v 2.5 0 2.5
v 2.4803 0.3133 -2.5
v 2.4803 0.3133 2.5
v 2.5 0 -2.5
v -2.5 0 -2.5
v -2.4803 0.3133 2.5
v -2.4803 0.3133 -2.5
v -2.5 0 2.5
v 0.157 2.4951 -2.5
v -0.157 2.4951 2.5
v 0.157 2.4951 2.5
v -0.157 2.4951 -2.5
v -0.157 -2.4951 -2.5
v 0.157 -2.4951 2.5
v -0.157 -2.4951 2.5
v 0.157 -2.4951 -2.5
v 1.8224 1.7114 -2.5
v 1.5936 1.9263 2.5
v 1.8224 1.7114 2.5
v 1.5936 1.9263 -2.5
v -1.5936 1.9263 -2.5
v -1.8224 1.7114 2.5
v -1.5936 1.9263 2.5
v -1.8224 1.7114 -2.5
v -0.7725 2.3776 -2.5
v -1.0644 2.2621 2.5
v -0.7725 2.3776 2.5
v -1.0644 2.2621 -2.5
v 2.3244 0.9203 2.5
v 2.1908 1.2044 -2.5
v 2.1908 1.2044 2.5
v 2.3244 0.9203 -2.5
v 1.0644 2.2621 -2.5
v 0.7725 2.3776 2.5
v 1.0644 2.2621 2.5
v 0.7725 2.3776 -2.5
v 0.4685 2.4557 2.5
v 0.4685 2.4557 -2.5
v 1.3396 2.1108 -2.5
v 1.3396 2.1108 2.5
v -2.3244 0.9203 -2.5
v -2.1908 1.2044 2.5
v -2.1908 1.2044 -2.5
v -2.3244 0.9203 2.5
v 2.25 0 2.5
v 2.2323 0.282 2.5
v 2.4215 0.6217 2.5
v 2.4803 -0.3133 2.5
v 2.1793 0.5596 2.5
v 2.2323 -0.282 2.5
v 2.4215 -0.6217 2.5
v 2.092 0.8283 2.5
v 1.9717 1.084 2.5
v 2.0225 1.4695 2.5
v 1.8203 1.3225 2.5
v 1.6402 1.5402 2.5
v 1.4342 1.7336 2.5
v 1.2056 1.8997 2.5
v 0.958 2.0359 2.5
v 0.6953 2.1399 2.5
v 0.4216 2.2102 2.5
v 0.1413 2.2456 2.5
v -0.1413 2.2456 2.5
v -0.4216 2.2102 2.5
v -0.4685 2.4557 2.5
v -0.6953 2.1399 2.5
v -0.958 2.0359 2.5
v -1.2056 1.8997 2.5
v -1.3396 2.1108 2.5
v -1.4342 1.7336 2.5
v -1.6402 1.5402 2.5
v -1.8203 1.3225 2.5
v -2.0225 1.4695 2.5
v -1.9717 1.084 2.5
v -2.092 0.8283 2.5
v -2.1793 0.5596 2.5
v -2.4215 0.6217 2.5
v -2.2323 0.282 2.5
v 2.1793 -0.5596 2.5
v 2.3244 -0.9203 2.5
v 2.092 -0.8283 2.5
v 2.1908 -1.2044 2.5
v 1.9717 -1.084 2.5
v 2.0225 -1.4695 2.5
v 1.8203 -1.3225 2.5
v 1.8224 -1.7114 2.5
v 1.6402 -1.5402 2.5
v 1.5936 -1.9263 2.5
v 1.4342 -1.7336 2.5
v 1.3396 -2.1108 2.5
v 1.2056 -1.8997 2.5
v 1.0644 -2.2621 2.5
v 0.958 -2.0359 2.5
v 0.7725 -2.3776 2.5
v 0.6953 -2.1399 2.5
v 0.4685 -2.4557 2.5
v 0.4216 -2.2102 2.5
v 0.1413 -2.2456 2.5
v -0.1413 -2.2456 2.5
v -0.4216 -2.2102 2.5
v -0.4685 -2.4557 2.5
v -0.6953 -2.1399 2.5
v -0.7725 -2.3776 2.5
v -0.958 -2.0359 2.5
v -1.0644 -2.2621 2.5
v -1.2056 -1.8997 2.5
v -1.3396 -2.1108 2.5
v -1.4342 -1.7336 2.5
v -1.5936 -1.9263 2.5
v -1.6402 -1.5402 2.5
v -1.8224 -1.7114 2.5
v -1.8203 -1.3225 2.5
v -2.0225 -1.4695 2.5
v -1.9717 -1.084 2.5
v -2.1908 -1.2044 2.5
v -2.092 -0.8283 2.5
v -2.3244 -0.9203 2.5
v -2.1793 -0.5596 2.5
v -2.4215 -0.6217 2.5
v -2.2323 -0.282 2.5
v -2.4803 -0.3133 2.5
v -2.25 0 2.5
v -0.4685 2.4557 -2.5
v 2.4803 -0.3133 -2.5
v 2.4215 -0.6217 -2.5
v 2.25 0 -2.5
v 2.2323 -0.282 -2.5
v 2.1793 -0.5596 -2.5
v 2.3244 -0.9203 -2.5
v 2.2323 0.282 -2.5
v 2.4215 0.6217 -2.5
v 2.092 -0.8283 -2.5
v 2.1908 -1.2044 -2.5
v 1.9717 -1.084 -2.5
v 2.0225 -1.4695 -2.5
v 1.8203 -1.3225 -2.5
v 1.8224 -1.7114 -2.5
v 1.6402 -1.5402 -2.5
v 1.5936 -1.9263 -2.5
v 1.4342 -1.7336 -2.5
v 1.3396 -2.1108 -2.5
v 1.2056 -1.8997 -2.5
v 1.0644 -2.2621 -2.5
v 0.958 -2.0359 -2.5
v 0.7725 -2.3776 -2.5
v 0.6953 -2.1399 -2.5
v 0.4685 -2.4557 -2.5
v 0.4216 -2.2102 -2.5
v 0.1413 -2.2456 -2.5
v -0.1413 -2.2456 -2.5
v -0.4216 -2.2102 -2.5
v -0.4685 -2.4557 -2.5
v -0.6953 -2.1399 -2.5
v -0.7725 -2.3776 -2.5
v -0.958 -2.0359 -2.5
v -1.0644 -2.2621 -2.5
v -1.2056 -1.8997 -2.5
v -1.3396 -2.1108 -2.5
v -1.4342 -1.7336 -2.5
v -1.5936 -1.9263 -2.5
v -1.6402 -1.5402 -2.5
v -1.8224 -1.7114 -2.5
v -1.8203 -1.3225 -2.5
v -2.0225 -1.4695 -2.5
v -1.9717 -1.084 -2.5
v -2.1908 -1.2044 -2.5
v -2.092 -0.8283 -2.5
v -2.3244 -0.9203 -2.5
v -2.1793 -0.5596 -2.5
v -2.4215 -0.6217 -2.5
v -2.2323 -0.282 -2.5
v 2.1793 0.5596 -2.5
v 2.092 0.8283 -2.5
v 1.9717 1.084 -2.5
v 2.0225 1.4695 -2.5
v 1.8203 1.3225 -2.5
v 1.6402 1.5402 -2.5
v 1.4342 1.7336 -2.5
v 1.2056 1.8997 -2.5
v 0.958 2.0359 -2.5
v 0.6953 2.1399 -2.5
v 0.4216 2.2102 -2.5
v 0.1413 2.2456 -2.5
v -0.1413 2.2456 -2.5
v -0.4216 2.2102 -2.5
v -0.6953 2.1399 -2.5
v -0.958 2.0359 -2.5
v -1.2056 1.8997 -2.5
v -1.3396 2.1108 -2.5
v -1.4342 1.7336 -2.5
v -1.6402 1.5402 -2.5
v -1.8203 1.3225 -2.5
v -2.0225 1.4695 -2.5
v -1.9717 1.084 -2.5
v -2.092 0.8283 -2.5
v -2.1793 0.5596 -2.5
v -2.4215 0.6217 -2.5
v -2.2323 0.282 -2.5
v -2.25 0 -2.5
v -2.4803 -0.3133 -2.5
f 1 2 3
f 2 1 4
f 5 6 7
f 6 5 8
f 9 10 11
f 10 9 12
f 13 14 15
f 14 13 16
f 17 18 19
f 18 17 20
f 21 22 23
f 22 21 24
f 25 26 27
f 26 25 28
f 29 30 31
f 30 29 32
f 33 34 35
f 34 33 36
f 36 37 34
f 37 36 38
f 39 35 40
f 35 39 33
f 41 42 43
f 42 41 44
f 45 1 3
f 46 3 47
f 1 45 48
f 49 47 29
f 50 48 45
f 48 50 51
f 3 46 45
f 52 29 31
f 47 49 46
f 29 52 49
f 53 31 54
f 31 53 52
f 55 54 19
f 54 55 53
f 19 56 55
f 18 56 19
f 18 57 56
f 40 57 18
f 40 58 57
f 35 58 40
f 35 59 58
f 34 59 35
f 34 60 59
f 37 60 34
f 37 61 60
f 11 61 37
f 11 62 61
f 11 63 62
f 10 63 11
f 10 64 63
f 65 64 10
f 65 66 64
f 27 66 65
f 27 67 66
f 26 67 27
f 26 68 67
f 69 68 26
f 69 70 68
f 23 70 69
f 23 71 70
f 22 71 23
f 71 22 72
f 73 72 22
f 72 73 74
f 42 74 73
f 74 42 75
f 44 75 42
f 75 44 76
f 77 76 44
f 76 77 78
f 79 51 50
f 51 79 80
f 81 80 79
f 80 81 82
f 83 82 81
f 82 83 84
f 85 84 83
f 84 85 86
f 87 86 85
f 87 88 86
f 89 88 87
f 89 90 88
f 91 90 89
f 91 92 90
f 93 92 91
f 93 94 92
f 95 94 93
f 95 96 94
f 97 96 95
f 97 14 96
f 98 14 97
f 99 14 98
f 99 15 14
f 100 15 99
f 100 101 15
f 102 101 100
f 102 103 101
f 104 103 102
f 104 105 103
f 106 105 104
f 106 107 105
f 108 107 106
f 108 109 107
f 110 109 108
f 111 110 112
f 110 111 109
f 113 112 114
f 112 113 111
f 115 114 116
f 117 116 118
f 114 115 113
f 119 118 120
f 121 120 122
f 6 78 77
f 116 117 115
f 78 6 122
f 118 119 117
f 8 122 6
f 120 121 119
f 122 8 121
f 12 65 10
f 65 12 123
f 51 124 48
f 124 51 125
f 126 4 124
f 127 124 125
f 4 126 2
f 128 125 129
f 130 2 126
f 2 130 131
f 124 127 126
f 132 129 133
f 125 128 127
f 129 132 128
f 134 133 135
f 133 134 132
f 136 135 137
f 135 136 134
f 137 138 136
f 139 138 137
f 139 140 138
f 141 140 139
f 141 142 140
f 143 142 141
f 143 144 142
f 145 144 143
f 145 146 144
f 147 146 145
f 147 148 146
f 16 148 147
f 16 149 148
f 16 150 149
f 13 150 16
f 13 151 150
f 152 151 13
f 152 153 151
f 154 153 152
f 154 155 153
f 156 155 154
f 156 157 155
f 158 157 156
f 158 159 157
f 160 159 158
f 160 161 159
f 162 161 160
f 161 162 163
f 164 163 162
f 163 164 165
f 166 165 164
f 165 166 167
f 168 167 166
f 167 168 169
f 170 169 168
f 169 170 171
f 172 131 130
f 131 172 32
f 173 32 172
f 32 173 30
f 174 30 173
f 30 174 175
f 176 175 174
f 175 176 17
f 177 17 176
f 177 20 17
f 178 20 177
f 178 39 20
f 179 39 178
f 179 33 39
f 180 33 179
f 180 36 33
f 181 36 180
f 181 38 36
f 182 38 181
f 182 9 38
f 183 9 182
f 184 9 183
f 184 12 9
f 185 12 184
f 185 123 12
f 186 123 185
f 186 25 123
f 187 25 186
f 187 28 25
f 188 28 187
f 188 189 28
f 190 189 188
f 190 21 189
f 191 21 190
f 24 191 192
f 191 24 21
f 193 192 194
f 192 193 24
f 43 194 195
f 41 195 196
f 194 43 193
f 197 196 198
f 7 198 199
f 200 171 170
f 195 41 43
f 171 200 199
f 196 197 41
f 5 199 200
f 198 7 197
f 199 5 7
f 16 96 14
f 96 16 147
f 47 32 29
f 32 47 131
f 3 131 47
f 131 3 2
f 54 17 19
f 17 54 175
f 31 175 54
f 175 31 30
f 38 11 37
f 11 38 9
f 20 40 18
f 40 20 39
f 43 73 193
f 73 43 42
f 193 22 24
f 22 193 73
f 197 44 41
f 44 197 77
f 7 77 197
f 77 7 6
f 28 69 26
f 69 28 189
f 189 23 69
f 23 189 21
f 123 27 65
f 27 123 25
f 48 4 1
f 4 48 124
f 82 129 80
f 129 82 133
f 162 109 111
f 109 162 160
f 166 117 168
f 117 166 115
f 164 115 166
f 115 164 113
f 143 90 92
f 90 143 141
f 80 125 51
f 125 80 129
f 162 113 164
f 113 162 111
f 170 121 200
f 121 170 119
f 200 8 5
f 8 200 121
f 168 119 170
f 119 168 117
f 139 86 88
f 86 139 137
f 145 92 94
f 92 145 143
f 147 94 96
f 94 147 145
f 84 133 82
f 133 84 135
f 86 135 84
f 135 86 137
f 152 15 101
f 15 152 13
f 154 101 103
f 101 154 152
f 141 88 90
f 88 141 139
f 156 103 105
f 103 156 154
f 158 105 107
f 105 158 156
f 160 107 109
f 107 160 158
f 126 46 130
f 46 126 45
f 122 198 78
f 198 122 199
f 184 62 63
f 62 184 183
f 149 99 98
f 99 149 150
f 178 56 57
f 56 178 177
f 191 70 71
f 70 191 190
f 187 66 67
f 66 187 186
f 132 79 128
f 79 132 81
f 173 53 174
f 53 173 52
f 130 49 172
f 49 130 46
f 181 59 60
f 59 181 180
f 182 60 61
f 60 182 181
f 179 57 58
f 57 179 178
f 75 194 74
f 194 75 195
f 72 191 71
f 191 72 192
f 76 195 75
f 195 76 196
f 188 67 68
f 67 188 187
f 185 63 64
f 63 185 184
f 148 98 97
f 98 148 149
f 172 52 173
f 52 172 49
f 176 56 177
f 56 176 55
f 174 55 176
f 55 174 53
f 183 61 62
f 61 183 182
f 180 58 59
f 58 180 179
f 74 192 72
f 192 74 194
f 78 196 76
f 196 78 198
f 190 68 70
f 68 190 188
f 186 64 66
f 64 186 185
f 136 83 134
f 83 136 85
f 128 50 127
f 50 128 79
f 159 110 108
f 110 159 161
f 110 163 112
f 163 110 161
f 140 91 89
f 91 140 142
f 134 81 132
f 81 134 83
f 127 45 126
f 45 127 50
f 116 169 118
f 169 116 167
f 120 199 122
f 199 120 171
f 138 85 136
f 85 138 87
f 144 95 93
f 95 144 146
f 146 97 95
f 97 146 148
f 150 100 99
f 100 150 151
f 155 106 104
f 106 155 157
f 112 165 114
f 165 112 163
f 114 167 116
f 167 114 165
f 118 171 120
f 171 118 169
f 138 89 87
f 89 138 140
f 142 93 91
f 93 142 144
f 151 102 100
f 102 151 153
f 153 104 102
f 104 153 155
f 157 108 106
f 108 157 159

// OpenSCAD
$fn = 50;


difference() {
	union() {
		translate(v = [0, 0, -2.5000000000]) {
			cylinder(h = 5, r = 2.5000000000);
		}
	}
	union() {
		translate(v = [0, 0, -100.0000000000]) {
			cylinder(h = 200, r = 2.2500000000);
		}
	}
}
